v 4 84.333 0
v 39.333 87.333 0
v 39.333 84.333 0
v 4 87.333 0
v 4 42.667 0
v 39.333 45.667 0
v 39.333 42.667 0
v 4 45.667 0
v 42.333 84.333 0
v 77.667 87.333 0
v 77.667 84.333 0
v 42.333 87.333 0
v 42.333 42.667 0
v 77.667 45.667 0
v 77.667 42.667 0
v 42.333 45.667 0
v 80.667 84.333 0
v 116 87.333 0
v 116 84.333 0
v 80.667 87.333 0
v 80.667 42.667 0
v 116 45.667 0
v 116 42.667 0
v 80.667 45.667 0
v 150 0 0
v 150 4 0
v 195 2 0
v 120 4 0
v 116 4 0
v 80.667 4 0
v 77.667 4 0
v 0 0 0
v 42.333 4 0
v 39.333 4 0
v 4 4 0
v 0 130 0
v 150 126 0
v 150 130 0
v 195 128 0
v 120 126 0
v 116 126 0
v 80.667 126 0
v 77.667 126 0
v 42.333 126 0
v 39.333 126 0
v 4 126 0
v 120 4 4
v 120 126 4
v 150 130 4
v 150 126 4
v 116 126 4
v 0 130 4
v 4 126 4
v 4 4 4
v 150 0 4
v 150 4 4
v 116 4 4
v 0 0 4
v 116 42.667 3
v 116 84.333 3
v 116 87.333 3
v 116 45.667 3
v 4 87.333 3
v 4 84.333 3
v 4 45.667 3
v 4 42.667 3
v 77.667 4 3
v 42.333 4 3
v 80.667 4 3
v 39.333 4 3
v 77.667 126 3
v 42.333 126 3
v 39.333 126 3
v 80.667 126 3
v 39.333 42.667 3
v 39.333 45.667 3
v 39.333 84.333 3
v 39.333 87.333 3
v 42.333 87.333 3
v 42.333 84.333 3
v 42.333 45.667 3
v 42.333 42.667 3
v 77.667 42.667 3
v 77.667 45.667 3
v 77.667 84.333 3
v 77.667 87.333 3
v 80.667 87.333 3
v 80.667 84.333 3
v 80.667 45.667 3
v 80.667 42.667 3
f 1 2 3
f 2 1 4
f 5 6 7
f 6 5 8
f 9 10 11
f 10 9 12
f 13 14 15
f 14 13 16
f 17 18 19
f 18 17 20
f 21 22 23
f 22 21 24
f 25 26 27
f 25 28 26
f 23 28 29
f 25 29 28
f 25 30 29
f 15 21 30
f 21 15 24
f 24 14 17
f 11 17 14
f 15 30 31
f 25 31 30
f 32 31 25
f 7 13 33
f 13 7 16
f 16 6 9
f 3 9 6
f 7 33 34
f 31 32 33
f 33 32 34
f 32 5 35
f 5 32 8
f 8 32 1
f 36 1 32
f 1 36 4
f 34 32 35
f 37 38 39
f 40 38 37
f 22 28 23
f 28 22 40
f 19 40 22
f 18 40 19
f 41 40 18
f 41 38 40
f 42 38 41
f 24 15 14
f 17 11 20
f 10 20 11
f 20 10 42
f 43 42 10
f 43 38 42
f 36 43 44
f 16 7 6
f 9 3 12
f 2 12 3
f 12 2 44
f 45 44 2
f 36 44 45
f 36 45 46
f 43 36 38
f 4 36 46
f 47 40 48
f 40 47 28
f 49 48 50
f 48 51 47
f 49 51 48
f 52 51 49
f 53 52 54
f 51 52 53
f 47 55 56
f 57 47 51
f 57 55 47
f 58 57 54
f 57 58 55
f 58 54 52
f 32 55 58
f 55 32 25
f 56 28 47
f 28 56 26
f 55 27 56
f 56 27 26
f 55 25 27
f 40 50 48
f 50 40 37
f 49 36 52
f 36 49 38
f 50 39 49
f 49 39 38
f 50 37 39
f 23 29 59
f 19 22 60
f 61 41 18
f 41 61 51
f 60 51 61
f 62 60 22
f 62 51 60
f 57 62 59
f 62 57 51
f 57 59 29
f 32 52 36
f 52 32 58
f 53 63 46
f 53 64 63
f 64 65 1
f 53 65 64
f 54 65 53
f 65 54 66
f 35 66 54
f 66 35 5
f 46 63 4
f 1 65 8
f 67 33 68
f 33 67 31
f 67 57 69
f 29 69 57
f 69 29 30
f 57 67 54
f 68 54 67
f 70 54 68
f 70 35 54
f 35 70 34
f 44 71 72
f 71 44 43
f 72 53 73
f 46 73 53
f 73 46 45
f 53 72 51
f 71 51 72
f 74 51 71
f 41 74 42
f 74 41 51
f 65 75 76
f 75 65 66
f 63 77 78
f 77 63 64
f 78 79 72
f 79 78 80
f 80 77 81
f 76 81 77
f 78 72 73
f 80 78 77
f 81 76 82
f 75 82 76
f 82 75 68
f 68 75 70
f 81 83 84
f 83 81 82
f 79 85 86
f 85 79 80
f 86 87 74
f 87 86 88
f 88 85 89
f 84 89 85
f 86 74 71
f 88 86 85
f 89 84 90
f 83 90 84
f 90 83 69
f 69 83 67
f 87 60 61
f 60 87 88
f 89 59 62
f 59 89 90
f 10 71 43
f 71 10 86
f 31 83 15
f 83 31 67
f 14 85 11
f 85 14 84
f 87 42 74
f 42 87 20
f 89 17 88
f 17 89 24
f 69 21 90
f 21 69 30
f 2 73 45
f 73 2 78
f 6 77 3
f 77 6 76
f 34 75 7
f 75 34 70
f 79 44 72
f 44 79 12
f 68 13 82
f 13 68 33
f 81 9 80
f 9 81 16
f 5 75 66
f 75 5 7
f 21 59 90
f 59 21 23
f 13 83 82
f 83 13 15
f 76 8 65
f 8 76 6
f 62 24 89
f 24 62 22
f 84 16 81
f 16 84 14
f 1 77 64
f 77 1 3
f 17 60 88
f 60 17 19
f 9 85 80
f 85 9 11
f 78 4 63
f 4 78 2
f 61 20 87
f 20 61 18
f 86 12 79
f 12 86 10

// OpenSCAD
/**
 * Adjustable scaffold for climbing plants.
 *
 * License: MIT
 * Copyright © 2018 Santiago M. Mola
 */

support_stick_width = 4;
support_stick_height = 30;
support_spike_height = 45;

scaffold_length = 130;
scaffold_width = 3;
scaffold_height = 120;
scaffold_rows = 3;
scaffold_cols = 3;

// Support stick
module support_stick(w, h1, h2) {
    // Stick
    cube([w, w, h1]);

    // Spike
    polyhedron(
        points = [
            [0, 0, 0],
            [0, w, 0],
            [w, w, 0],
            [w, 0, 0],
            [0, w / 2, -1 * h2]
        ],
        faces = [
            [0, 1, 2, 3],
            [4, 1, 0],
            [4, 2, 1],
            [4, 3, 2],
            [4, 0, 3]
        ]
    );
}

// Grid defined by length (l), height (h) and width (w), number of rows
// and number of columns.
module grid(l, h, w, rows, cols) {
    // Rows
    row_height = h / rows;
    for (row = [0:rows])
        translate([0, 0, row * row_height])
            cube([w, l, w]);

    // Columns
    col_width = l / cols;
    for (col = [0:cols])
        translate([0, col * col_width, 0])
            cube([w, w, h]);
}

module frame(l, h, w) {
    cube([w, l, w]);
    translate([0, 0, h - w])
        cube([w, l, w]);
    cube([w, w, h]);
    translate([0, l - w, 0])
        cube([w, w, h]);
}

// Scaffold defined by length (l), height (h), outer width (ow) and inner width (iw).
module scaffold(l, h, ow, iw, rows, cols) {
    // Outer frame
    frame(l, h, ow);

    // Inner frame dimensions
    iy0 = ow - iw;
    iz0 = ow - iw;
    il = l - ow * 2 + iw;
    ih = h - ow * 2 + iw;
    
    // Grid
    translate([0, iy0, iz0])
        grid(il, ih, iw, rows, cols);

}

translate([scaffold_height, 0, 0]) {
    rotate([0, -90, 0]) {
        translate([0, 0, -1 * support_stick_height])
            support_stick(support_stick_width, support_stick_height, support_spike_height);
        translate([0, scaffold_length - support_stick_width, -1 * support_stick_height])
            support_stick(support_stick_width, support_stick_height, support_spike_height);

        scaffold(scaffold_length, scaffold_height, support_stick_width, scaffold_width, scaffold_rows, scaffold_cols);
    }
}
